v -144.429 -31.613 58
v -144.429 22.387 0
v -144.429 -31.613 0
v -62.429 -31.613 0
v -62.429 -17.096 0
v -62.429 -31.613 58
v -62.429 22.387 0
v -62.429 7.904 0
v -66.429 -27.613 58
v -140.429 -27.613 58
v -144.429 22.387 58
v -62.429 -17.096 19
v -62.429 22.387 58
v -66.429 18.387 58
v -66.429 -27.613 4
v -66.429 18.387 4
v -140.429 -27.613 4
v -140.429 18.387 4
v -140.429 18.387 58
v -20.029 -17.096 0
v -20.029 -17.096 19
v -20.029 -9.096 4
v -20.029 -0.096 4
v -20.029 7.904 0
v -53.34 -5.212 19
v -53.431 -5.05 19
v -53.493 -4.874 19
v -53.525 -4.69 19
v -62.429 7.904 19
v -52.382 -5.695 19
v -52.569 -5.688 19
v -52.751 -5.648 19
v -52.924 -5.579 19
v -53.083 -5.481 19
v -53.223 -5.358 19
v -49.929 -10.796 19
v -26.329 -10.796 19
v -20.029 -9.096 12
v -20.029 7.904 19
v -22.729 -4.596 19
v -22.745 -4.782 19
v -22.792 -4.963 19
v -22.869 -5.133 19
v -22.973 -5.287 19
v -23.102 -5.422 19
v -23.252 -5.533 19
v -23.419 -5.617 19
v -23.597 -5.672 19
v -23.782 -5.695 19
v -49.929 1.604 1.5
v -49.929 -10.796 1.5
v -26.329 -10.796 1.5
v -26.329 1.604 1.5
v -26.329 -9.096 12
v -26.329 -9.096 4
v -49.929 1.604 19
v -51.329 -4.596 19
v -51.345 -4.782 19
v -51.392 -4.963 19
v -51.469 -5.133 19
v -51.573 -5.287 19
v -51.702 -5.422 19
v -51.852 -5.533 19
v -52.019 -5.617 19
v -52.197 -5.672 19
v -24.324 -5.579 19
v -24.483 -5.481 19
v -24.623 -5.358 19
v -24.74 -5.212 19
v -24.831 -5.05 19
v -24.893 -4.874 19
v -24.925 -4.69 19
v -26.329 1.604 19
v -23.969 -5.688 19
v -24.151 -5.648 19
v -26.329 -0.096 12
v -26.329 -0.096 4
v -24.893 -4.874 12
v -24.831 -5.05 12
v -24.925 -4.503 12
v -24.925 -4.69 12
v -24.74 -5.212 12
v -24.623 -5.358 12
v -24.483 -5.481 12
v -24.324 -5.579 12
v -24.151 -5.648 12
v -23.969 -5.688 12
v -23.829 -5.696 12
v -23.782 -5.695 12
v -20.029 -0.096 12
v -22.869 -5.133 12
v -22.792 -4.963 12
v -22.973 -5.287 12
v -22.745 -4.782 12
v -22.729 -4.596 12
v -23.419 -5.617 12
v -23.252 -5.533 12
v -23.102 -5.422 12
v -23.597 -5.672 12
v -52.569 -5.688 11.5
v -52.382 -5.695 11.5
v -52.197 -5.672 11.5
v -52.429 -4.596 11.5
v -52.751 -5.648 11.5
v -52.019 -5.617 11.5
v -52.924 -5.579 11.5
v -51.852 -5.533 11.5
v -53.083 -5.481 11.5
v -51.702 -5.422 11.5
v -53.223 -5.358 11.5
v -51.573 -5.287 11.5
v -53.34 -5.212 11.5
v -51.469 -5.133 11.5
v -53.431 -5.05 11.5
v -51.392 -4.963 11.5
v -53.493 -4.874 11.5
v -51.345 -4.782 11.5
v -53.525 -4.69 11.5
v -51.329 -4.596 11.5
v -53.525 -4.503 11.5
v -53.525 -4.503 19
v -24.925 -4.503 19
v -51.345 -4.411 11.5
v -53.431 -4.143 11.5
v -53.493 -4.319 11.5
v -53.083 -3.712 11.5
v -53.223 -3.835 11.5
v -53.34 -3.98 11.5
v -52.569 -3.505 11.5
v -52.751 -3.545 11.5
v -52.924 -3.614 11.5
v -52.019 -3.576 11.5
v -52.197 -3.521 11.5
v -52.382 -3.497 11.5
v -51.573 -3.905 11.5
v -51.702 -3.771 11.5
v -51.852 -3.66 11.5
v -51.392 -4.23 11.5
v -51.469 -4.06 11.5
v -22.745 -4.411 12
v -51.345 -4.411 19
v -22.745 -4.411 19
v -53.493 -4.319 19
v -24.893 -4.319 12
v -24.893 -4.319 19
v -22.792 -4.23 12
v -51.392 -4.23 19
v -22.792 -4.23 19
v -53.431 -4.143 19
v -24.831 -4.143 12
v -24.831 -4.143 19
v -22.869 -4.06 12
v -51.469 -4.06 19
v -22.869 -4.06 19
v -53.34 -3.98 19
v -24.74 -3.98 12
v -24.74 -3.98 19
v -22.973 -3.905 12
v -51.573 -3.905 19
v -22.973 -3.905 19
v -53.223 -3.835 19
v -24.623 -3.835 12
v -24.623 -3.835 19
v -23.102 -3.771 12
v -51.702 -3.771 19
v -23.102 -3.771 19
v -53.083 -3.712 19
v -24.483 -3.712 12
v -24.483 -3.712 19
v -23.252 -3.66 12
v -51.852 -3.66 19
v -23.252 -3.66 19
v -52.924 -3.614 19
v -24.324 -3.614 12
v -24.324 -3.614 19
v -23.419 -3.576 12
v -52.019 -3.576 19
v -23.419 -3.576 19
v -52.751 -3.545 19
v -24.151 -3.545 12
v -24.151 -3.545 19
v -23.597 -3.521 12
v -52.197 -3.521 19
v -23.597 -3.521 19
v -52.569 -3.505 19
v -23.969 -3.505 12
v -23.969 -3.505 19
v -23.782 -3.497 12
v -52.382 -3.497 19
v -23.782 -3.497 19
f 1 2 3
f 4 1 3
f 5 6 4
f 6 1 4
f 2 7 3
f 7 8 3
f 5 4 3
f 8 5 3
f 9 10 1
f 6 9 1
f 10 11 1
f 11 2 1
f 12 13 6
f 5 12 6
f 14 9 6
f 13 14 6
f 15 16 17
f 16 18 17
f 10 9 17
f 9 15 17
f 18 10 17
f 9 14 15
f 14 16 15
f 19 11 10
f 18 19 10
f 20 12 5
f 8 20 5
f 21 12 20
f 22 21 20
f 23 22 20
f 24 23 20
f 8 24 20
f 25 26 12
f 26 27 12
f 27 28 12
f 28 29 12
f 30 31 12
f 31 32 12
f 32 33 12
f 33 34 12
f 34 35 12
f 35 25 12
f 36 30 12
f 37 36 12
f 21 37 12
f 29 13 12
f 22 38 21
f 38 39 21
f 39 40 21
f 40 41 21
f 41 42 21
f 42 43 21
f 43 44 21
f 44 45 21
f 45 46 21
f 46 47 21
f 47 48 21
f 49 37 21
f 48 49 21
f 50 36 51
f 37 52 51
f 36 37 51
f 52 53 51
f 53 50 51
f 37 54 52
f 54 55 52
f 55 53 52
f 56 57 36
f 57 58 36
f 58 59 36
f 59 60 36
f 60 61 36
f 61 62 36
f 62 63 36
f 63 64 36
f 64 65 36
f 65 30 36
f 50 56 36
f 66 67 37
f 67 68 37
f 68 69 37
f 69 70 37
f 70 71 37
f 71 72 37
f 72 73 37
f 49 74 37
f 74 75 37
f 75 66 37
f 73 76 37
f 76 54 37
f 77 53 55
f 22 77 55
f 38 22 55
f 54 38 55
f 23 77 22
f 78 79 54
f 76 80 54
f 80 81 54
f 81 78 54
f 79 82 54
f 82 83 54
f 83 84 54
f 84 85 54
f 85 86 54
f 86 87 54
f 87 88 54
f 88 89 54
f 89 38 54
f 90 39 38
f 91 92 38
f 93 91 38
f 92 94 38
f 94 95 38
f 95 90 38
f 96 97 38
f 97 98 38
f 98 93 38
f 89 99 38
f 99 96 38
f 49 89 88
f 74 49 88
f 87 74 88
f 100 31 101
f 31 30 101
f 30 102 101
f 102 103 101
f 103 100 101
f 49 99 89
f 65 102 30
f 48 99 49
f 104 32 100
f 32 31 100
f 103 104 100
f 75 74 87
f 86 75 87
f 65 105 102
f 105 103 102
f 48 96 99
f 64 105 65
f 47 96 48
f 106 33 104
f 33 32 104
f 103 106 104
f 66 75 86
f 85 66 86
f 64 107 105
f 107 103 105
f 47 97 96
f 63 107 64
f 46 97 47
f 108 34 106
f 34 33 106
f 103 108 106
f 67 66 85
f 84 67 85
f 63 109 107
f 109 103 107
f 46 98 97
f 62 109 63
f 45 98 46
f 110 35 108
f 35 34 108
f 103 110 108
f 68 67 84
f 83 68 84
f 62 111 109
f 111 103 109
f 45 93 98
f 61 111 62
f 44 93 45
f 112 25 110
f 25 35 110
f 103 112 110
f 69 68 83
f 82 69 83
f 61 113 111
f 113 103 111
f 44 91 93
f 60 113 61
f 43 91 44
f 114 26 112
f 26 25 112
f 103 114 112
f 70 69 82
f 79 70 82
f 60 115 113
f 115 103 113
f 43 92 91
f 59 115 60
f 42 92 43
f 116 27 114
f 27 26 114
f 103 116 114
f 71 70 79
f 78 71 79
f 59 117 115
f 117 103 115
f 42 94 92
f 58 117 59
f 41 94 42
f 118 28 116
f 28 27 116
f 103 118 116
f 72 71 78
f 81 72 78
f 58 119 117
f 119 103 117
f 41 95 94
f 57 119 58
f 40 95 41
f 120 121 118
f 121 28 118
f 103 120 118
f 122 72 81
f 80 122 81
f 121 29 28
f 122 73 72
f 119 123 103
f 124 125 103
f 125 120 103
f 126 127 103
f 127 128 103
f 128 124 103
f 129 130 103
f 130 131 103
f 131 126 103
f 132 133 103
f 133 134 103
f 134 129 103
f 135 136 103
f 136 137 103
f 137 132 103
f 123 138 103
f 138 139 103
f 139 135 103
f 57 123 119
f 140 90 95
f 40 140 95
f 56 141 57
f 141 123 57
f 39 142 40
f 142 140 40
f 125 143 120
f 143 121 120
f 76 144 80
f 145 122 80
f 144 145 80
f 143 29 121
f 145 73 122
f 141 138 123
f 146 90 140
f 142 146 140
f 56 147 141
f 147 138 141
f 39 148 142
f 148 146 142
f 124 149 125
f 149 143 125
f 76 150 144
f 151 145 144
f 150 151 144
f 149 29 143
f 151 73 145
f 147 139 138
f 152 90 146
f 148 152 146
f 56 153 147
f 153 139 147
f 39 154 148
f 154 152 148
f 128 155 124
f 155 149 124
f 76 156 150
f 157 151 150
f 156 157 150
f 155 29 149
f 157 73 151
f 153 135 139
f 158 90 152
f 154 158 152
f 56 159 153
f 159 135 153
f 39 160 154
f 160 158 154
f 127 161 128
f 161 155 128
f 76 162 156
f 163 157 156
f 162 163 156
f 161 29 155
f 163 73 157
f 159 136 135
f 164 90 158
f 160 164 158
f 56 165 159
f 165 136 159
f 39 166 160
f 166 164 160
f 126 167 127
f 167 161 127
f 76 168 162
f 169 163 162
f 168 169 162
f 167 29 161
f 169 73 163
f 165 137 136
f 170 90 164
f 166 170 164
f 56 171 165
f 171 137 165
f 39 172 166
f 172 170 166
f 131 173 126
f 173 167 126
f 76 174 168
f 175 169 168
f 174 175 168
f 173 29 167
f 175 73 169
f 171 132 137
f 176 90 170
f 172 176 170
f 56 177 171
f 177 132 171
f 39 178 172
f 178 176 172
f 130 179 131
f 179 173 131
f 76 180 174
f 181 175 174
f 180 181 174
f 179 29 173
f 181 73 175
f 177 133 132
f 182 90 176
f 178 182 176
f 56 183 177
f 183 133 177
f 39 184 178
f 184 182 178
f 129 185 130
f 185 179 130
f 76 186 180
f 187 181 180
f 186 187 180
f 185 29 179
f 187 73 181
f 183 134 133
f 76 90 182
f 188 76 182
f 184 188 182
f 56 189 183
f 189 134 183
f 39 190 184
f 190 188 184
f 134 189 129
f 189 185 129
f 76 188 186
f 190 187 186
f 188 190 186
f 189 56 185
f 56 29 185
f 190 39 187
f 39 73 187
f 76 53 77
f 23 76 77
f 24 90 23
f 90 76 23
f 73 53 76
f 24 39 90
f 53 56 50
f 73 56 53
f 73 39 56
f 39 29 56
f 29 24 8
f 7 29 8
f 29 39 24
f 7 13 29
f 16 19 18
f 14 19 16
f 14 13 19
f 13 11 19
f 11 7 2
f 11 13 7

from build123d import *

# Parameters (mm, degrees)
SKETCH_1_W           = 45
SKETCH_1_H           = 25
EXTRUDE_2_DEPTH      = 19
SKETCH_4_W           = 23.6
SKETCH_4_H           = 12.4
CUT_EXTRUDE_2_DEPTH  = 17.5
SKETCH_5_W           = 8
SKETCH_5_H           = 9
CUT_EXTRUDE_4_DEPTH  = 7
SKETCH_6_R           = 1.1
CUT_EXTRUDE_6_DEPTH  = 7.5
SKETCH_8_W           = 2.6
SKETCH_8_H           = 25
EXTRUDE_3_DEPTH      = 17.5
SKETCH_10_W          = 36.5
SKETCH_10_H          = 60
EXTRUDE_5_DEPTH      = 2.6
SKETCH_13_W          = 36.5
SKETCH_13_H          = 60
EXTRUDE_6_DEPTH      = 1.4
SKETCH_14_W          = 36.5
SKETCH_14_H          = 3
CUT_EXTRUDE_9_DEPTH  = 4
SKETCH_15_W          = 36.5
SKETCH_15_H          = 3
CUT_EXTRUDE_10_DEPTH = 4
SKETCH_16_W          = 4
SKETCH_16_H          = 54
EXTRUDE_7_DEPTH      = 21.5
SKETCH_17_W          = 4
SKETCH_17_H          = 54
EXTRUDE_8_DEPTH      = 78
SKETCH_18_W          = 78
SKETCH_18_H          = 4
EXTRUDE_9_DEPTH      = 54
SKETCH_19_W          = 78
SKETCH_19_H          = 4
EXTRUDE_10_DEPTH     = 54
SKETCH_20_W          = 4
SKETCH_20_H          = 46
EXTRUDE_11_DEPTH     = 54


with BuildPart() as part:
    # 草圖1 → 填料-伸長2 (new body)
    with BuildSketch(Plane.XY):
        with Locations((-42.528991691, -4.596431101)):
            Rectangle(SKETCH_1_W, SKETCH_1_H)
    extrude(amount=EXTRUDE_2_DEPTH)

    # 草圖4 → 除料-伸長2 (cut)
    with BuildSketch(Plane.XY.offset(19)):
        with Locations((-38.128991691, -4.596431101)):
            Rectangle(SKETCH_4_W, SKETCH_4_H)
    extrude(amount=-CUT_EXTRUDE_2_DEPTH, mode=Mode.SUBTRACT)

    # 草圖5 → 除料-伸長4 (cut)
    with BuildSketch(Plane(origin=(-20.028991691, 0, 0), x_dir=(0, 0, -1), z_dir=(1, 0, 0))):
        with Locations((-8, -4.596431101)):
            Rectangle(SKETCH_5_W, SKETCH_5_H)
    extrude(amount=-CUT_EXTRUDE_4_DEPTH, mode=Mode.SUBTRACT)

    # 草圖6 → 除料-伸長6 (cut)
    with BuildSketch(Plane.XY.offset(19)):
        with Locations((-23.828991691, -4.596431101)):
            Circle(SKETCH_6_R)
        with Locations((-52.428991691, -4.596431101)):
            Circle(SKETCH_6_R)
    extrude(amount=-CUT_EXTRUDE_6_DEPTH, mode=Mode.SUBTRACT)

    # 草圖8 → 填料-伸長3 (add)
    with BuildSketch(Plane.XY.offset(19)):
        with Locations((-63.728991691, -4.596431101)):
            Rectangle(SKETCH_8_W, SKETCH_8_H)
    extrude(amount=EXTRUDE_3_DEPTH)

    # 草圖10 → 填料-伸長5 (add)
    with BuildSketch(Plane(origin=(-62.428991691, 0, 0), x_dir=(0, 0, -1), z_dir=(1, 0, 0))):
        with Locations((-18.25, -4.613155897)):
            Rectangle(SKETCH_10_W, SKETCH_10_H)
    extrude(amount=-EXTRUDE_5_DEPTH)

    # 草圖13 → 填料-伸長6 (add)
    with BuildSketch(Plane.ZY.offset(65.028991691)):
        with Locations((18.25, -4.613155897)):
            Rectangle(SKETCH_13_W, SKETCH_13_H)
    extrude(amount=EXTRUDE_6_DEPTH)

    # 草圖14 → 除料-伸長9 (cut)
    with BuildSketch(Plane(origin=(-62.428991691, 0, 0), x_dir=(0, 0, -1), z_dir=(1, 0, 0))):
        with Locations((-18.25, -33.113155897)):
            Rectangle(SKETCH_14_W, SKETCH_14_H)
    extrude(amount=-CUT_EXTRUDE_9_DEPTH, mode=Mode.SUBTRACT)

    # 草圖15 → 除料-伸長10 (cut)
    with BuildSketch(Plane(origin=(-62.428991691, 0, 0), x_dir=(0, 0, -1), z_dir=(1, 0, 0))):
        with Locations((-18.25, 23.886844103)):
            Rectangle(SKETCH_15_W, SKETCH_15_H)
    extrude(amount=-CUT_EXTRUDE_10_DEPTH, mode=Mode.SUBTRACT)

    # 草圖16 → 填料-伸長7 (add)
    with BuildSketch(Plane.XY.offset(36.5)):
        with Locations((-64.428991691, -4.613155897)):
            Rectangle(SKETCH_16_W, SKETCH_16_H)
    extrude(amount=EXTRUDE_7_DEPTH)

    # 草圖17 → 填料-伸長8 (add)
    with BuildSketch(Plane.ZY.offset(66.428991691)):
        with Locations((2, -4.613155897)):
            Rectangle(SKETCH_17_W, SKETCH_17_H)
    extrude(amount=EXTRUDE_8_DEPTH)

    # 草圖18 → 填料-伸長9 (add)
    with BuildSketch(Plane.XY.offset(4)):
        with Locations((-105.428991691, 20.386844103)):
            Rectangle(SKETCH_18_W, SKETCH_18_H)
    extrude(amount=EXTRUDE_9_DEPTH)

    # 草圖19 → 填料-伸長10 (add)
    with BuildSketch(Plane.XY.offset(4)):
        with Locations((-105.428991691, -29.613155897)):
            Rectangle(SKETCH_19_W, SKETCH_19_H)
    extrude(amount=EXTRUDE_10_DEPTH)

    # 草圖20 → 填料-伸長11 (add)
    with BuildSketch(Plane.XY.offset(4)):
        with Locations((-142.428991691, -4.613155897)):
            Rectangle(SKETCH_20_W, SKETCH_20_H)
    extrude(amount=EXTRUDE_11_DEPTH)


solid = part.part
